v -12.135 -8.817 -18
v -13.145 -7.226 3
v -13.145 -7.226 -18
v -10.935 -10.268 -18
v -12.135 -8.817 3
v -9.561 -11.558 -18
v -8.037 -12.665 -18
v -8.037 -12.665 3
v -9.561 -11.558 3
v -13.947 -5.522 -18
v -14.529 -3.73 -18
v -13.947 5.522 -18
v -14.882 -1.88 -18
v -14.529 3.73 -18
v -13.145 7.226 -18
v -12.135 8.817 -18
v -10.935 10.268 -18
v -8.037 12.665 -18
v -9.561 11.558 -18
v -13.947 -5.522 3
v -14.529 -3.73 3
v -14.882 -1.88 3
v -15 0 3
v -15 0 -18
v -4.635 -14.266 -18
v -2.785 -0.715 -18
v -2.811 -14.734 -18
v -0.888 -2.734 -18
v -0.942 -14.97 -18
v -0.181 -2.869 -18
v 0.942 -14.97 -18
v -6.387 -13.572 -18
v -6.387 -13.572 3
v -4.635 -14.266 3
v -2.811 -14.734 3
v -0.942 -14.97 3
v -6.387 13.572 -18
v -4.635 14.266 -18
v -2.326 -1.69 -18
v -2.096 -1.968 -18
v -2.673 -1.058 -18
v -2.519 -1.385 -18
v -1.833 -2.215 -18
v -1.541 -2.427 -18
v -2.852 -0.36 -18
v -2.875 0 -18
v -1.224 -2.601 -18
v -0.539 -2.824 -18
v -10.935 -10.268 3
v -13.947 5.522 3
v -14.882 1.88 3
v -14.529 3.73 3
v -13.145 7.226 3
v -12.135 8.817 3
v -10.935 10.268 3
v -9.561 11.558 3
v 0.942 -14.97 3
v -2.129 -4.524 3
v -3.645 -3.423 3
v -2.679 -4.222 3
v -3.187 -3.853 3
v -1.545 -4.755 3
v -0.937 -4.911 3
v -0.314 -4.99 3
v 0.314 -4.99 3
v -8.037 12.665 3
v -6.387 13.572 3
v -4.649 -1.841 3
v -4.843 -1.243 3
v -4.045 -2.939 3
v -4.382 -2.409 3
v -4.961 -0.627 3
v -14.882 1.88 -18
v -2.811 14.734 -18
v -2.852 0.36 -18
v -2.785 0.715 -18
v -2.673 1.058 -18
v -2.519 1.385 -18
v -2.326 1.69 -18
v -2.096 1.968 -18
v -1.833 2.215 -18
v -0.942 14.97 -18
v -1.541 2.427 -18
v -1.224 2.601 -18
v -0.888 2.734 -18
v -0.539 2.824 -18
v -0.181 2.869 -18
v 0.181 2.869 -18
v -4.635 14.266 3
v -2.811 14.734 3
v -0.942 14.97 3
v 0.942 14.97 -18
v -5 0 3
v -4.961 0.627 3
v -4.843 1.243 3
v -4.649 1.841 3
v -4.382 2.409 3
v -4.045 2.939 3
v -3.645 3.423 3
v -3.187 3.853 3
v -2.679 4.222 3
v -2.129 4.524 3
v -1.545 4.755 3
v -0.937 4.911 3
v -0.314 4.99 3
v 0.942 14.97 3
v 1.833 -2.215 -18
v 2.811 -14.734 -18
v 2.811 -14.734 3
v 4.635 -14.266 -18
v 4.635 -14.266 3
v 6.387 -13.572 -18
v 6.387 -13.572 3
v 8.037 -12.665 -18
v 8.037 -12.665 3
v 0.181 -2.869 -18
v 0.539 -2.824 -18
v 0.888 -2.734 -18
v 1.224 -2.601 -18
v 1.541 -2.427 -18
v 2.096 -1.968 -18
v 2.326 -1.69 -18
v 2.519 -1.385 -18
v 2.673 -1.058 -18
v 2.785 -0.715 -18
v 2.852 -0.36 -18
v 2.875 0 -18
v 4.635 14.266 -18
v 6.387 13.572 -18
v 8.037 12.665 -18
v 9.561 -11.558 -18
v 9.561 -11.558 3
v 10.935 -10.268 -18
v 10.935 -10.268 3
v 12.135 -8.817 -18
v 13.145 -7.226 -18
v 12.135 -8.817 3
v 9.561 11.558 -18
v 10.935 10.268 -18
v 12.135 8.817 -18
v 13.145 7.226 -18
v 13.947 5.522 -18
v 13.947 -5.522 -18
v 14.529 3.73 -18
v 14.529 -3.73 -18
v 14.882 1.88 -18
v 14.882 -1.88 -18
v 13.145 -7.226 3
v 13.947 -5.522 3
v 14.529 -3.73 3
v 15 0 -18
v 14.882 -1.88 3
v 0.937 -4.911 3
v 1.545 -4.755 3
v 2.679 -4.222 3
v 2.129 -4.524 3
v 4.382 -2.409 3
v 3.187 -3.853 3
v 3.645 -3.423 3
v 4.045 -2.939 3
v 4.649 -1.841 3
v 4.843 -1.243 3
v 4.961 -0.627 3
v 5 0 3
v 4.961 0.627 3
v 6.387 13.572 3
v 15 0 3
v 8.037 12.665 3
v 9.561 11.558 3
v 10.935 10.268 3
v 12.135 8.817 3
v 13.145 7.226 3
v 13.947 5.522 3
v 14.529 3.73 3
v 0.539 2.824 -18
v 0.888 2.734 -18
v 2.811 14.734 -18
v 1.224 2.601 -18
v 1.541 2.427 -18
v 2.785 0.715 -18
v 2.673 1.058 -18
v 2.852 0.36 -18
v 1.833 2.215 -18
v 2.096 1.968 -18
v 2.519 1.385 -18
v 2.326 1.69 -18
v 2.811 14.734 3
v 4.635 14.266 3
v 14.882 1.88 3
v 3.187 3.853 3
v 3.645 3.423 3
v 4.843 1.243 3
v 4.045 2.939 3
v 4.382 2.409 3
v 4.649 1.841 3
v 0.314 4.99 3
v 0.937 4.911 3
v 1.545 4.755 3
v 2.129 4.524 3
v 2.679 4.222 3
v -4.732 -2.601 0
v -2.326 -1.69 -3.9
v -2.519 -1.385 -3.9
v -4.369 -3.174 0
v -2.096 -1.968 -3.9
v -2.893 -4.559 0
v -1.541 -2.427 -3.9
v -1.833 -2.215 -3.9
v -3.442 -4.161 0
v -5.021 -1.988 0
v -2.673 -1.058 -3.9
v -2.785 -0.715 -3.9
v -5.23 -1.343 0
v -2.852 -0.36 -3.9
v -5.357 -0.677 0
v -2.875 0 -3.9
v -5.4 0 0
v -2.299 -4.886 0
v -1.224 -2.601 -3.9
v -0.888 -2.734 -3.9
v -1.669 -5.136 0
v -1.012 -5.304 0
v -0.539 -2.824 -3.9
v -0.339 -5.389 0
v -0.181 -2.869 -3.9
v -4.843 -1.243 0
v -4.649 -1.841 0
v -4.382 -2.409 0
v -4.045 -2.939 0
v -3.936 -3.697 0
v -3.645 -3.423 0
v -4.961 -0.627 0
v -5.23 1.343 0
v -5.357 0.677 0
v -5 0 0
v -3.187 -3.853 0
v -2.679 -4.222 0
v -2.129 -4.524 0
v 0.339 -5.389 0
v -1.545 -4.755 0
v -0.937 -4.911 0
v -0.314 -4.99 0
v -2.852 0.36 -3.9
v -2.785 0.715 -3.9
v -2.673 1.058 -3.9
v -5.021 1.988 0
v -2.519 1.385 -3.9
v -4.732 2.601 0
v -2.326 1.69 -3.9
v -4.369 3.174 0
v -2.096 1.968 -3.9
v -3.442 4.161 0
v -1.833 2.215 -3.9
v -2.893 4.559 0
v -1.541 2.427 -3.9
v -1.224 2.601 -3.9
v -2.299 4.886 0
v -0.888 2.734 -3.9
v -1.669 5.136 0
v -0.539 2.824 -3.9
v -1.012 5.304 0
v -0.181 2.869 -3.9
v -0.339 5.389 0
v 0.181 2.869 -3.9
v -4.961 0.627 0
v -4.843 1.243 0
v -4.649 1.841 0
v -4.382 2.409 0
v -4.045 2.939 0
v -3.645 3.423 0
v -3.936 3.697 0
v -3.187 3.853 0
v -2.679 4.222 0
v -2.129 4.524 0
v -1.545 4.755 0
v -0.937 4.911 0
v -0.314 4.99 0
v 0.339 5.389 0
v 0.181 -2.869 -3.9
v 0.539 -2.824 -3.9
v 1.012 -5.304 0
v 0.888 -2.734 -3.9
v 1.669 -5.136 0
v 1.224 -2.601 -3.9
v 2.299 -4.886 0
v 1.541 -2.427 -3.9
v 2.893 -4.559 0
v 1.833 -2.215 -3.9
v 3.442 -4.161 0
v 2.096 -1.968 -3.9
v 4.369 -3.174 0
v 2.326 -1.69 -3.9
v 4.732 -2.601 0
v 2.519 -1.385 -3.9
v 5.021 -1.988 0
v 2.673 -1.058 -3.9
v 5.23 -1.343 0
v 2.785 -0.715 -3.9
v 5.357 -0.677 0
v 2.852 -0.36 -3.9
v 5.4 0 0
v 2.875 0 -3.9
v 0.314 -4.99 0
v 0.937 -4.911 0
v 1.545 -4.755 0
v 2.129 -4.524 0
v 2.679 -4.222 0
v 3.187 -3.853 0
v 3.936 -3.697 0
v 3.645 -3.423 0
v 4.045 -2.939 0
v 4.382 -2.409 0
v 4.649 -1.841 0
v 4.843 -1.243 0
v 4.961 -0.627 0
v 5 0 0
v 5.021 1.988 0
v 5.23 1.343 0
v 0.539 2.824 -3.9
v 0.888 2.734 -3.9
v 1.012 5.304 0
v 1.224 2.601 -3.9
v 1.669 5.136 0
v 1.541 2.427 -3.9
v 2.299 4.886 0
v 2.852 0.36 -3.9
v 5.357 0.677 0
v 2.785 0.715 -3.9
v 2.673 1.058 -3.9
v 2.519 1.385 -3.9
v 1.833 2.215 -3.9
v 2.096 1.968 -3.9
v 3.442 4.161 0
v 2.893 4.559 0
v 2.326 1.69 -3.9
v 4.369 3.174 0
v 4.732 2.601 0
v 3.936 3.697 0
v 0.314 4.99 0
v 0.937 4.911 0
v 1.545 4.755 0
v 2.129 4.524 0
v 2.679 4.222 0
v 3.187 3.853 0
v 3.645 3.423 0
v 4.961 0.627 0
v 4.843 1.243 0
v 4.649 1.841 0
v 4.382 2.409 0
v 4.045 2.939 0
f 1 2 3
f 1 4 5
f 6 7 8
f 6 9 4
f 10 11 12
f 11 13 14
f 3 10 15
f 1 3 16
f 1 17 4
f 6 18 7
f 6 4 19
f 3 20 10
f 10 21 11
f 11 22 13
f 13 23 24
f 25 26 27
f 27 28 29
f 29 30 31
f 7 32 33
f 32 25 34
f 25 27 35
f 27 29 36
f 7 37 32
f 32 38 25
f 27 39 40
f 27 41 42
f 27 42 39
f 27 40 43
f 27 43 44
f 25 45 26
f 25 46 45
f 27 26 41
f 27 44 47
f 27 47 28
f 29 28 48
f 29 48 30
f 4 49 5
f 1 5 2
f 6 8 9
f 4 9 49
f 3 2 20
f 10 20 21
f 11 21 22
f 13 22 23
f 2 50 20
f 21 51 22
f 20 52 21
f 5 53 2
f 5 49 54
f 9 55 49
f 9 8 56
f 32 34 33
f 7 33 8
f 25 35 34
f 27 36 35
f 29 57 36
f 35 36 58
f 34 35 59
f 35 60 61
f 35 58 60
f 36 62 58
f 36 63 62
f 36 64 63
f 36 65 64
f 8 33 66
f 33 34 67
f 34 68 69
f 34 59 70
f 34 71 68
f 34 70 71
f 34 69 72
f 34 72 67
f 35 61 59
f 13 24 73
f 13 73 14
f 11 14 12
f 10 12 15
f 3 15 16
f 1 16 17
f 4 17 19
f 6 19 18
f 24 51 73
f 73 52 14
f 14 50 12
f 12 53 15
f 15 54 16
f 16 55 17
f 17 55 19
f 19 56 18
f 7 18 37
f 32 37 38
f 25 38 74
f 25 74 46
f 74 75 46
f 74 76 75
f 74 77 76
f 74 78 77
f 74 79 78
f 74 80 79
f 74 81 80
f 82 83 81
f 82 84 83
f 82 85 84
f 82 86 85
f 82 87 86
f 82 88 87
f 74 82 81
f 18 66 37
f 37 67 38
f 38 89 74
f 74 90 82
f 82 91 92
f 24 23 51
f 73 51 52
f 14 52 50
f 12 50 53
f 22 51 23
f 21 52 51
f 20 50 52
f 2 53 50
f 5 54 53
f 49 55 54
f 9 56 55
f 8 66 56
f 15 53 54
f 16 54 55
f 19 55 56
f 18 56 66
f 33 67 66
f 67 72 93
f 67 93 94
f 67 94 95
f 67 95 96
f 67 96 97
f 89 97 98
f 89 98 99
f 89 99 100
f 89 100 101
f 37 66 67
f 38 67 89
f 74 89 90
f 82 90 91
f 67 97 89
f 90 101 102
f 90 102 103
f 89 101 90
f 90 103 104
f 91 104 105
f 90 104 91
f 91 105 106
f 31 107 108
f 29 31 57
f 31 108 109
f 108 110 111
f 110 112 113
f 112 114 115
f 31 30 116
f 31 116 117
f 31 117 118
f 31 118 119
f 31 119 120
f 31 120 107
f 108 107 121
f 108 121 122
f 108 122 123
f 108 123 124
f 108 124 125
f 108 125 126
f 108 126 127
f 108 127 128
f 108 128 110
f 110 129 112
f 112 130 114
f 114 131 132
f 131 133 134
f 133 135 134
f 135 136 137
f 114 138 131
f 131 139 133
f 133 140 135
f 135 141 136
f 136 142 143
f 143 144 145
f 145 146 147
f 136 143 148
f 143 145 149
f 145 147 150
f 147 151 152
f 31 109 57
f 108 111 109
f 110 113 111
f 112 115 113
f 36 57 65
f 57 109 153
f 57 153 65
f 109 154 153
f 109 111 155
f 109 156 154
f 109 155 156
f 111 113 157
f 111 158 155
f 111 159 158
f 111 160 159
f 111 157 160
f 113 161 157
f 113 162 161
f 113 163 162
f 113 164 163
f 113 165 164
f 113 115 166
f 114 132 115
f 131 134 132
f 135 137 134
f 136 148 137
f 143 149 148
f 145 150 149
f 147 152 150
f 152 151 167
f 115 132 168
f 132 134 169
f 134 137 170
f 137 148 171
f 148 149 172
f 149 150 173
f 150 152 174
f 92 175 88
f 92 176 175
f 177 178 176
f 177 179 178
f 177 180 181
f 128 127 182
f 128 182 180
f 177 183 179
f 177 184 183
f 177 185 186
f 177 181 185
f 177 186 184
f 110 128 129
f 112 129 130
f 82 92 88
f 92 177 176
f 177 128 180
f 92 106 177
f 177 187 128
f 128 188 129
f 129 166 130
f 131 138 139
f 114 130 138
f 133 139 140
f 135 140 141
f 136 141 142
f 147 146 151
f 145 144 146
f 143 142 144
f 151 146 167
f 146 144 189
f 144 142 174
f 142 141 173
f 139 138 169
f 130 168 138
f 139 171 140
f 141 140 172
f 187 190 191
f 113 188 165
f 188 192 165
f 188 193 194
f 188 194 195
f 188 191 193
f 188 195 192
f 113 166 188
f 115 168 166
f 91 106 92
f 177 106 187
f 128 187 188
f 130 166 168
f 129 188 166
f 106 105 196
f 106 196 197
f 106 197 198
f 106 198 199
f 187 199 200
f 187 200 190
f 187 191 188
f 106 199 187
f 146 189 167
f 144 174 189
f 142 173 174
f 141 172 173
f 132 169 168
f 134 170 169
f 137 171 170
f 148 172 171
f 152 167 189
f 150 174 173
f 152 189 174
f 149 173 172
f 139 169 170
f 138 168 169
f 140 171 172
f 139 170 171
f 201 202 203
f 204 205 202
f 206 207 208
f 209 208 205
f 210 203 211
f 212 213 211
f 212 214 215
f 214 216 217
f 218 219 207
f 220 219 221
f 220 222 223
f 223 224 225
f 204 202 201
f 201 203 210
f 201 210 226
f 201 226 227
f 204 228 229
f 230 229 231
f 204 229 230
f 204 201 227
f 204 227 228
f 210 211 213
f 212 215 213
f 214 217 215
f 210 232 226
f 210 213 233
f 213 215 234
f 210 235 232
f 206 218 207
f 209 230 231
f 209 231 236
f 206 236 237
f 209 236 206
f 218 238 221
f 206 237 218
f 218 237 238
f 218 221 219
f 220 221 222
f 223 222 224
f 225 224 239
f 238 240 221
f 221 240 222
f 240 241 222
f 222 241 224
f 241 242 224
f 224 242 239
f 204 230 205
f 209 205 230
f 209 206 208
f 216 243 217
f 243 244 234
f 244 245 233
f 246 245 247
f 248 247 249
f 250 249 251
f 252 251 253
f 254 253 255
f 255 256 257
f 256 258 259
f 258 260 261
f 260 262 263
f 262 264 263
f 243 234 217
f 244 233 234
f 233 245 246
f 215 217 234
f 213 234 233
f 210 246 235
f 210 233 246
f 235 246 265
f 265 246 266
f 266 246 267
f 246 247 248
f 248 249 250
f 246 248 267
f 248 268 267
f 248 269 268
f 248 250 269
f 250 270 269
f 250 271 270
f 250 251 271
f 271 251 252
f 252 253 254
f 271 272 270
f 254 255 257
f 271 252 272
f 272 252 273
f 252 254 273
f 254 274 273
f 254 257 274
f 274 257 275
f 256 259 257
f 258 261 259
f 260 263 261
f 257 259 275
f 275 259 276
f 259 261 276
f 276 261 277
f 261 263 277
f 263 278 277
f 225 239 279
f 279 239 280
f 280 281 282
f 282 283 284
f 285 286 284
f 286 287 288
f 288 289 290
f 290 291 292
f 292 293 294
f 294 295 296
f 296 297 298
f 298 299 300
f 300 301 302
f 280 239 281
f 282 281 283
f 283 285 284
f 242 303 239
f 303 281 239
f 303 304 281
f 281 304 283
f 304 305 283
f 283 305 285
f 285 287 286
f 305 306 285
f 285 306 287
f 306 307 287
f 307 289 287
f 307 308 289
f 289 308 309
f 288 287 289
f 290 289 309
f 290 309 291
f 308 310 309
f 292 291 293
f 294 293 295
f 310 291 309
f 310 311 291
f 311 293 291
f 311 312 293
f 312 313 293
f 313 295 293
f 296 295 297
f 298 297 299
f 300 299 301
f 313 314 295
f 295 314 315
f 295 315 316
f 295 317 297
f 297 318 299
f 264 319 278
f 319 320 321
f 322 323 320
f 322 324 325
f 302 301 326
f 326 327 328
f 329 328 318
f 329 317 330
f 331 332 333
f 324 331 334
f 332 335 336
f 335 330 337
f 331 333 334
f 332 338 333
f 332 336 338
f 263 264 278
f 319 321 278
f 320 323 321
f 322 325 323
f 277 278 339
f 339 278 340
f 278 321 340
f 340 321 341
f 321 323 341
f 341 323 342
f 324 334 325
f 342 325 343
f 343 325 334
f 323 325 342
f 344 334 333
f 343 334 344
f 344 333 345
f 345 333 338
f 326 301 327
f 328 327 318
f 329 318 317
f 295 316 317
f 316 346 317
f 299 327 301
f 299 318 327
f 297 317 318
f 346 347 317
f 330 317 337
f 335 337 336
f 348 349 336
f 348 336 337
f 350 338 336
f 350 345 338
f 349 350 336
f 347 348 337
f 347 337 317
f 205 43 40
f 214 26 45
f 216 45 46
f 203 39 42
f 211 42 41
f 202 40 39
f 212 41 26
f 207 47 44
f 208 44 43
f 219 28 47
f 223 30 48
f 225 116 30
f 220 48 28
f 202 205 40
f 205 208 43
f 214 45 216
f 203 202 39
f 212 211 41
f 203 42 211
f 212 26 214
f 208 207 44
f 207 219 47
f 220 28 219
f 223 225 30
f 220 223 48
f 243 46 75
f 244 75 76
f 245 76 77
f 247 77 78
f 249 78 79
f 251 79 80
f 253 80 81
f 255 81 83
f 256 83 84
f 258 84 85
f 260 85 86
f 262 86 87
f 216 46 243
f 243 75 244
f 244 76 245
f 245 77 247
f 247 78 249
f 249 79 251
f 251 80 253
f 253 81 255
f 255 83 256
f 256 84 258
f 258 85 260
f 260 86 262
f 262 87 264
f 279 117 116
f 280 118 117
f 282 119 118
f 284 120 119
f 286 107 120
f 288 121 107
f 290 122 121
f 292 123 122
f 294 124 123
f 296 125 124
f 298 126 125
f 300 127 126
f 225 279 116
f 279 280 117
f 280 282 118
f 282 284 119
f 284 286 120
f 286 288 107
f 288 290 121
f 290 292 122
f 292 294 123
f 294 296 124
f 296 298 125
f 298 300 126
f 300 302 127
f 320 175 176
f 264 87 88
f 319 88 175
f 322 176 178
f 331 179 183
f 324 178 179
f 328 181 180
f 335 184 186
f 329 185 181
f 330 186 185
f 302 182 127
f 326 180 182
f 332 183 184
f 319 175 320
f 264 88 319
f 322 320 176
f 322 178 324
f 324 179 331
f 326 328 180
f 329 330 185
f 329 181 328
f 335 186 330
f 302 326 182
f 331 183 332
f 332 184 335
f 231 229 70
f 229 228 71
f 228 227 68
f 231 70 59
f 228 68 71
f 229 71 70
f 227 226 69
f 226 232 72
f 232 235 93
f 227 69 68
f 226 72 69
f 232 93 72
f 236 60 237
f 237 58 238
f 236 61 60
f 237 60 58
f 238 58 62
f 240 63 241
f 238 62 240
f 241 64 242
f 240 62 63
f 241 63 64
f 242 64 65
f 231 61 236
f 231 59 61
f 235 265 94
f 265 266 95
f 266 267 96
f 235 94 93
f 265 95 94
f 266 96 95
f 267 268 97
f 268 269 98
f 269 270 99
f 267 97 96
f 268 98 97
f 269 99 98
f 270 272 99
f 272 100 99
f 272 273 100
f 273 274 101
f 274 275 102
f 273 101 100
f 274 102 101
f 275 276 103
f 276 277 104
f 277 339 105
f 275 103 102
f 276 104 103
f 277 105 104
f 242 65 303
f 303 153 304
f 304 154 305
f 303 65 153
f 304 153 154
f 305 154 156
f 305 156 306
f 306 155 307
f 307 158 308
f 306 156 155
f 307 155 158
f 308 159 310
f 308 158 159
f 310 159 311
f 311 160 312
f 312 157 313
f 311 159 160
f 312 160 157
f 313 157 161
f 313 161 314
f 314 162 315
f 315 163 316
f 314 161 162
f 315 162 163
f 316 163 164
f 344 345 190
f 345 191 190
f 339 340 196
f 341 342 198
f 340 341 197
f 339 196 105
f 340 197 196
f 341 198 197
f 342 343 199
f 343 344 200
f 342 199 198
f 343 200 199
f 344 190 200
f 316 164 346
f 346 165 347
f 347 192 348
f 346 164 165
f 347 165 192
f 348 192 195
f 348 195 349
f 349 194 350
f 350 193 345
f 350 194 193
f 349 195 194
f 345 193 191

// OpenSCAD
$fn = 50;


difference() {
	union() {
		translate(v = [0, 0, -18.0000000000]) {
			cylinder(h = 21, r = 15.0000000000);
		}
		#translate(v = [0, 0, -21.0000000000]) {
			cylinder(h = 21, r = 2.8750000000);
		}
	}
	union() {
		translate(v = [0, 0, 0]) {
			rotate(a = [0, 0, 0]) {
				difference() {
					union() {
						translate(v = [0, 0, -21.0000000000]) {
							cylinder(h = 21, r = 2.6000000000);
						}
						translate(v = [0, 0, -3.9000000000]) {
							cylinder(h = 3.9000000000, r1 = 2.8750000000, r2 = 5.4000000000);
						}
						translate(v = [0, 0, -21.0000000000]) {
							cylinder(h = 21, r = 2.8750000000);
						}
						translate(v = [0, 0, -21.0000000000]) {
							cylinder(h = 21, r = 2.6000000000);
						}
					}
					union();
				}
			}
		}
		#cylinder(h = 3, r = 5.0000000000);
	}
}
